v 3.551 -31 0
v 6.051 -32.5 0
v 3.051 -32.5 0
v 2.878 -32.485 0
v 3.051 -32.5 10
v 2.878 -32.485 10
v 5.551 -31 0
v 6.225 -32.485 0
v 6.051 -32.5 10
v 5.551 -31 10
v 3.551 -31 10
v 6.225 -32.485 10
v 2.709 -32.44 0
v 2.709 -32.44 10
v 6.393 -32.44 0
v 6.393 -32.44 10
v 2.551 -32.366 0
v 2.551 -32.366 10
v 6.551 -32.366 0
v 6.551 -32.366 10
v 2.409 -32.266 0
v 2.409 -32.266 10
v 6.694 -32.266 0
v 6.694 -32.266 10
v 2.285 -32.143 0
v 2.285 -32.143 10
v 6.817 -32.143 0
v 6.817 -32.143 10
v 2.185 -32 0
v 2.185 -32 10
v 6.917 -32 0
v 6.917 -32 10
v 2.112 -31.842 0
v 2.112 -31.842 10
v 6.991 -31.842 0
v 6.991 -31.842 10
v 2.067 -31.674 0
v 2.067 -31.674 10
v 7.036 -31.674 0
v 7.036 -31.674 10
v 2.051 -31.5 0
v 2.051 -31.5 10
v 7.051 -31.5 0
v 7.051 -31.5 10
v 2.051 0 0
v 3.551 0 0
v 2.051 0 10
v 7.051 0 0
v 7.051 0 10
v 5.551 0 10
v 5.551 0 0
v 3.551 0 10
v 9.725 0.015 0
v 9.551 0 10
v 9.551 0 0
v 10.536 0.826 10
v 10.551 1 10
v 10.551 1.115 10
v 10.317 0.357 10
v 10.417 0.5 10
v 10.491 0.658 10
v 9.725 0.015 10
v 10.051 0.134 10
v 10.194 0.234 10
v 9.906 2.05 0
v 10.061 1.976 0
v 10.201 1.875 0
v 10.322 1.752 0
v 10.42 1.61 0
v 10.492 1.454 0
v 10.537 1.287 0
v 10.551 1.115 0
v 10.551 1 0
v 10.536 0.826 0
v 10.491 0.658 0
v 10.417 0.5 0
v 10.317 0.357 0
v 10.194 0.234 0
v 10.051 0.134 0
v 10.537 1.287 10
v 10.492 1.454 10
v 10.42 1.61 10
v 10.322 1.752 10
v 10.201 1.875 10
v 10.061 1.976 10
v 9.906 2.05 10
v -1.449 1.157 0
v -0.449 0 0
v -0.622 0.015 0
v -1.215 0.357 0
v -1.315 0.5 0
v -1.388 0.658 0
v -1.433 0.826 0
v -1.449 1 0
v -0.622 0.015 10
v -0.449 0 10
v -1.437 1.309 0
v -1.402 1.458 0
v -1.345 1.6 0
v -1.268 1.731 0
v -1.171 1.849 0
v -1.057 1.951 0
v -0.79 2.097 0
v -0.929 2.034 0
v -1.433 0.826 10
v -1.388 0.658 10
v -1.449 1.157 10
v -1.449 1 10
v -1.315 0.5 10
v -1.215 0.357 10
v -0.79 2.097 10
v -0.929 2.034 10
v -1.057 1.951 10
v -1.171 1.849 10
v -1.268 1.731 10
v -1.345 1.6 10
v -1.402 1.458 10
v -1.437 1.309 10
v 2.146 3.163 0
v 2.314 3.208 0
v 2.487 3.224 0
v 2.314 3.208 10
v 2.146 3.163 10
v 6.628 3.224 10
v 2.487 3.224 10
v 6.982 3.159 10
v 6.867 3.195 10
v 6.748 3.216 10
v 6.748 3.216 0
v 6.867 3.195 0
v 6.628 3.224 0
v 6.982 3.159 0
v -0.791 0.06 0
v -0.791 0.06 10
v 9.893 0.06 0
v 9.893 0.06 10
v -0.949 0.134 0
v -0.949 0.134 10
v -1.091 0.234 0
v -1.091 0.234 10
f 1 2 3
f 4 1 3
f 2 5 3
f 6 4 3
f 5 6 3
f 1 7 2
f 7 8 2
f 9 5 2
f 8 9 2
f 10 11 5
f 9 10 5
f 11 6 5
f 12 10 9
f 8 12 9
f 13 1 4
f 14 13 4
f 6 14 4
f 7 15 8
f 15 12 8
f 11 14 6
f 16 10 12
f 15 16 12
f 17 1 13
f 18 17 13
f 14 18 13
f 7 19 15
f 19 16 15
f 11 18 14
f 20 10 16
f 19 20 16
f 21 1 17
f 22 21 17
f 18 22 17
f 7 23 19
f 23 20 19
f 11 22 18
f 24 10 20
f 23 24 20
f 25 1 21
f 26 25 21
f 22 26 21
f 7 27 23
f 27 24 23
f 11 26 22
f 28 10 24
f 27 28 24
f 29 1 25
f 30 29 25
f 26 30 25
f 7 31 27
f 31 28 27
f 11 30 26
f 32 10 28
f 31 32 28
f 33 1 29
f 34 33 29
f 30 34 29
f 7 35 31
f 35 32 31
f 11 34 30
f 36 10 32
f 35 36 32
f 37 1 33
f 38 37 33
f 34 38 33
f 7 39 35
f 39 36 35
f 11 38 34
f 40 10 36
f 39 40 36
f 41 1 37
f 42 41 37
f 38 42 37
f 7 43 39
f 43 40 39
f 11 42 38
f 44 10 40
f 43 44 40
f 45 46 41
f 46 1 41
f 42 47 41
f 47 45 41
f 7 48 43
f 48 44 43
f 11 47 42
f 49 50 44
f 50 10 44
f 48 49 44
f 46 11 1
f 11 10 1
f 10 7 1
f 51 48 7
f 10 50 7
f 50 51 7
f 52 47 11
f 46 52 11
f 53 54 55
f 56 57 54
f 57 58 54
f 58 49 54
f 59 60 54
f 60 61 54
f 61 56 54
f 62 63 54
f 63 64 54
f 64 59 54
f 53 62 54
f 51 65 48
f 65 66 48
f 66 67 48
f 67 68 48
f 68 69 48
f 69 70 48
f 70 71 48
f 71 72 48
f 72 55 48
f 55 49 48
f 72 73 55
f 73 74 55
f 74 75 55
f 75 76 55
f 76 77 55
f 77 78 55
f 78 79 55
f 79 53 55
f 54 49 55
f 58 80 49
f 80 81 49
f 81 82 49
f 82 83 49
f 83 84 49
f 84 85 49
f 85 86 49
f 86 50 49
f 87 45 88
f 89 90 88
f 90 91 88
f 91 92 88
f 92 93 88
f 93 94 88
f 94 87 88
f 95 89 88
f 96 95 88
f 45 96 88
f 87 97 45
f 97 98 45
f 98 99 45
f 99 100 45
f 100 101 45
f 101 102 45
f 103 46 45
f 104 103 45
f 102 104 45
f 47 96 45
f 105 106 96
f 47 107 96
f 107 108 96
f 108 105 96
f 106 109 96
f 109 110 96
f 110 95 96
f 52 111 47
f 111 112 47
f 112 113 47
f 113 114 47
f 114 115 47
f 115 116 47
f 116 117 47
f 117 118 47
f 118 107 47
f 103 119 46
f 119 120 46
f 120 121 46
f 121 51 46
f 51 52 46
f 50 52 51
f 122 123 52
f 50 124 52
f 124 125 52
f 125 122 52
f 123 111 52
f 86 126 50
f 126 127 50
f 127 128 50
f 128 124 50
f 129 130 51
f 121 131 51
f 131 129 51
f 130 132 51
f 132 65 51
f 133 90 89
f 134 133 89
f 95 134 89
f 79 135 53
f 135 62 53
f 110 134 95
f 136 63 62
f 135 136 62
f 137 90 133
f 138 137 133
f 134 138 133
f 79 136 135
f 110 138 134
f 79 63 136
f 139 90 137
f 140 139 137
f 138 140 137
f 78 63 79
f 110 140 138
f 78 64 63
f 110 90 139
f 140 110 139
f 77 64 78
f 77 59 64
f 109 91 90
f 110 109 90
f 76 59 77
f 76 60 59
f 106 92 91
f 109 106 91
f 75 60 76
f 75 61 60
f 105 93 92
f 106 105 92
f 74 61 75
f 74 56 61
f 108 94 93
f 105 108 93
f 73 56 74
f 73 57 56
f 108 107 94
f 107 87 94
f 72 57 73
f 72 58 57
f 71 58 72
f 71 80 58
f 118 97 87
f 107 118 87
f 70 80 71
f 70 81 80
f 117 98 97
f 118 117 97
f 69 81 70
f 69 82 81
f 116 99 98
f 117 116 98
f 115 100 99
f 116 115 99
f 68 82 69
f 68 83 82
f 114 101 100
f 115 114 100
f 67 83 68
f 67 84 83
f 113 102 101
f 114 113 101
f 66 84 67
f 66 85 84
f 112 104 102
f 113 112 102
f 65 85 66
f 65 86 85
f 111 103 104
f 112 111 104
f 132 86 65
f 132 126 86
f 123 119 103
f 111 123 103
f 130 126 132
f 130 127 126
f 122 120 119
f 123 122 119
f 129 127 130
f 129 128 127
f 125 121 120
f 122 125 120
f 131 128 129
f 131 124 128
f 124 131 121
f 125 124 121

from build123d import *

# Parameters (mm, degrees)
ESQUISSE1_W        = 2
ESQUISSE1_H        = 31
BOSS_EXTRU_1_DEPTH = 10
CONG_1_R           = 1


with BuildPart() as part:
    # Esquisse1 → Boss.-Extru.1 (new body)
    with BuildSketch(Plane.XY):
        Polygon((10.551419921, 0), (10.551419921, 1.805779869), (6.81110646, 3.223544029), (2.31110646, 3.223544029), (-1.448580079, 1.857982926), (-1.448580079, 0), (2.051419921, 0), (2.051419921, -32.5), (7.051419921, -32.5), (7.051419921, 0), align=None)
        with Locations((4.551419921, -15.5)):
            Rectangle(ESQUISSE1_W, ESQUISSE1_H, mode=Mode.SUBTRACT)
    extrude(amount=BOSS_EXTRU_1_DEPTH)

    # Congé1
    cong_1_edges = [part.edges().sort_by_distance(p)[0] for p in [
        (-1.448580079, 0, 5),
        (-1.448580079, 1.857982926, 5),
        (2.31110646, 3.223544029, 5),
        (6.81110646, 3.223544029, 5),
        (10.551419921, 1.805779869, 5),
        (10.551419921, 0, 5),
        (7.051419921, -32.5, 5),
        (2.051419921, -32.5, 5),
    ]]
    fillet(cong_1_edges, radius=CONG_1_R)


solid = part.part
